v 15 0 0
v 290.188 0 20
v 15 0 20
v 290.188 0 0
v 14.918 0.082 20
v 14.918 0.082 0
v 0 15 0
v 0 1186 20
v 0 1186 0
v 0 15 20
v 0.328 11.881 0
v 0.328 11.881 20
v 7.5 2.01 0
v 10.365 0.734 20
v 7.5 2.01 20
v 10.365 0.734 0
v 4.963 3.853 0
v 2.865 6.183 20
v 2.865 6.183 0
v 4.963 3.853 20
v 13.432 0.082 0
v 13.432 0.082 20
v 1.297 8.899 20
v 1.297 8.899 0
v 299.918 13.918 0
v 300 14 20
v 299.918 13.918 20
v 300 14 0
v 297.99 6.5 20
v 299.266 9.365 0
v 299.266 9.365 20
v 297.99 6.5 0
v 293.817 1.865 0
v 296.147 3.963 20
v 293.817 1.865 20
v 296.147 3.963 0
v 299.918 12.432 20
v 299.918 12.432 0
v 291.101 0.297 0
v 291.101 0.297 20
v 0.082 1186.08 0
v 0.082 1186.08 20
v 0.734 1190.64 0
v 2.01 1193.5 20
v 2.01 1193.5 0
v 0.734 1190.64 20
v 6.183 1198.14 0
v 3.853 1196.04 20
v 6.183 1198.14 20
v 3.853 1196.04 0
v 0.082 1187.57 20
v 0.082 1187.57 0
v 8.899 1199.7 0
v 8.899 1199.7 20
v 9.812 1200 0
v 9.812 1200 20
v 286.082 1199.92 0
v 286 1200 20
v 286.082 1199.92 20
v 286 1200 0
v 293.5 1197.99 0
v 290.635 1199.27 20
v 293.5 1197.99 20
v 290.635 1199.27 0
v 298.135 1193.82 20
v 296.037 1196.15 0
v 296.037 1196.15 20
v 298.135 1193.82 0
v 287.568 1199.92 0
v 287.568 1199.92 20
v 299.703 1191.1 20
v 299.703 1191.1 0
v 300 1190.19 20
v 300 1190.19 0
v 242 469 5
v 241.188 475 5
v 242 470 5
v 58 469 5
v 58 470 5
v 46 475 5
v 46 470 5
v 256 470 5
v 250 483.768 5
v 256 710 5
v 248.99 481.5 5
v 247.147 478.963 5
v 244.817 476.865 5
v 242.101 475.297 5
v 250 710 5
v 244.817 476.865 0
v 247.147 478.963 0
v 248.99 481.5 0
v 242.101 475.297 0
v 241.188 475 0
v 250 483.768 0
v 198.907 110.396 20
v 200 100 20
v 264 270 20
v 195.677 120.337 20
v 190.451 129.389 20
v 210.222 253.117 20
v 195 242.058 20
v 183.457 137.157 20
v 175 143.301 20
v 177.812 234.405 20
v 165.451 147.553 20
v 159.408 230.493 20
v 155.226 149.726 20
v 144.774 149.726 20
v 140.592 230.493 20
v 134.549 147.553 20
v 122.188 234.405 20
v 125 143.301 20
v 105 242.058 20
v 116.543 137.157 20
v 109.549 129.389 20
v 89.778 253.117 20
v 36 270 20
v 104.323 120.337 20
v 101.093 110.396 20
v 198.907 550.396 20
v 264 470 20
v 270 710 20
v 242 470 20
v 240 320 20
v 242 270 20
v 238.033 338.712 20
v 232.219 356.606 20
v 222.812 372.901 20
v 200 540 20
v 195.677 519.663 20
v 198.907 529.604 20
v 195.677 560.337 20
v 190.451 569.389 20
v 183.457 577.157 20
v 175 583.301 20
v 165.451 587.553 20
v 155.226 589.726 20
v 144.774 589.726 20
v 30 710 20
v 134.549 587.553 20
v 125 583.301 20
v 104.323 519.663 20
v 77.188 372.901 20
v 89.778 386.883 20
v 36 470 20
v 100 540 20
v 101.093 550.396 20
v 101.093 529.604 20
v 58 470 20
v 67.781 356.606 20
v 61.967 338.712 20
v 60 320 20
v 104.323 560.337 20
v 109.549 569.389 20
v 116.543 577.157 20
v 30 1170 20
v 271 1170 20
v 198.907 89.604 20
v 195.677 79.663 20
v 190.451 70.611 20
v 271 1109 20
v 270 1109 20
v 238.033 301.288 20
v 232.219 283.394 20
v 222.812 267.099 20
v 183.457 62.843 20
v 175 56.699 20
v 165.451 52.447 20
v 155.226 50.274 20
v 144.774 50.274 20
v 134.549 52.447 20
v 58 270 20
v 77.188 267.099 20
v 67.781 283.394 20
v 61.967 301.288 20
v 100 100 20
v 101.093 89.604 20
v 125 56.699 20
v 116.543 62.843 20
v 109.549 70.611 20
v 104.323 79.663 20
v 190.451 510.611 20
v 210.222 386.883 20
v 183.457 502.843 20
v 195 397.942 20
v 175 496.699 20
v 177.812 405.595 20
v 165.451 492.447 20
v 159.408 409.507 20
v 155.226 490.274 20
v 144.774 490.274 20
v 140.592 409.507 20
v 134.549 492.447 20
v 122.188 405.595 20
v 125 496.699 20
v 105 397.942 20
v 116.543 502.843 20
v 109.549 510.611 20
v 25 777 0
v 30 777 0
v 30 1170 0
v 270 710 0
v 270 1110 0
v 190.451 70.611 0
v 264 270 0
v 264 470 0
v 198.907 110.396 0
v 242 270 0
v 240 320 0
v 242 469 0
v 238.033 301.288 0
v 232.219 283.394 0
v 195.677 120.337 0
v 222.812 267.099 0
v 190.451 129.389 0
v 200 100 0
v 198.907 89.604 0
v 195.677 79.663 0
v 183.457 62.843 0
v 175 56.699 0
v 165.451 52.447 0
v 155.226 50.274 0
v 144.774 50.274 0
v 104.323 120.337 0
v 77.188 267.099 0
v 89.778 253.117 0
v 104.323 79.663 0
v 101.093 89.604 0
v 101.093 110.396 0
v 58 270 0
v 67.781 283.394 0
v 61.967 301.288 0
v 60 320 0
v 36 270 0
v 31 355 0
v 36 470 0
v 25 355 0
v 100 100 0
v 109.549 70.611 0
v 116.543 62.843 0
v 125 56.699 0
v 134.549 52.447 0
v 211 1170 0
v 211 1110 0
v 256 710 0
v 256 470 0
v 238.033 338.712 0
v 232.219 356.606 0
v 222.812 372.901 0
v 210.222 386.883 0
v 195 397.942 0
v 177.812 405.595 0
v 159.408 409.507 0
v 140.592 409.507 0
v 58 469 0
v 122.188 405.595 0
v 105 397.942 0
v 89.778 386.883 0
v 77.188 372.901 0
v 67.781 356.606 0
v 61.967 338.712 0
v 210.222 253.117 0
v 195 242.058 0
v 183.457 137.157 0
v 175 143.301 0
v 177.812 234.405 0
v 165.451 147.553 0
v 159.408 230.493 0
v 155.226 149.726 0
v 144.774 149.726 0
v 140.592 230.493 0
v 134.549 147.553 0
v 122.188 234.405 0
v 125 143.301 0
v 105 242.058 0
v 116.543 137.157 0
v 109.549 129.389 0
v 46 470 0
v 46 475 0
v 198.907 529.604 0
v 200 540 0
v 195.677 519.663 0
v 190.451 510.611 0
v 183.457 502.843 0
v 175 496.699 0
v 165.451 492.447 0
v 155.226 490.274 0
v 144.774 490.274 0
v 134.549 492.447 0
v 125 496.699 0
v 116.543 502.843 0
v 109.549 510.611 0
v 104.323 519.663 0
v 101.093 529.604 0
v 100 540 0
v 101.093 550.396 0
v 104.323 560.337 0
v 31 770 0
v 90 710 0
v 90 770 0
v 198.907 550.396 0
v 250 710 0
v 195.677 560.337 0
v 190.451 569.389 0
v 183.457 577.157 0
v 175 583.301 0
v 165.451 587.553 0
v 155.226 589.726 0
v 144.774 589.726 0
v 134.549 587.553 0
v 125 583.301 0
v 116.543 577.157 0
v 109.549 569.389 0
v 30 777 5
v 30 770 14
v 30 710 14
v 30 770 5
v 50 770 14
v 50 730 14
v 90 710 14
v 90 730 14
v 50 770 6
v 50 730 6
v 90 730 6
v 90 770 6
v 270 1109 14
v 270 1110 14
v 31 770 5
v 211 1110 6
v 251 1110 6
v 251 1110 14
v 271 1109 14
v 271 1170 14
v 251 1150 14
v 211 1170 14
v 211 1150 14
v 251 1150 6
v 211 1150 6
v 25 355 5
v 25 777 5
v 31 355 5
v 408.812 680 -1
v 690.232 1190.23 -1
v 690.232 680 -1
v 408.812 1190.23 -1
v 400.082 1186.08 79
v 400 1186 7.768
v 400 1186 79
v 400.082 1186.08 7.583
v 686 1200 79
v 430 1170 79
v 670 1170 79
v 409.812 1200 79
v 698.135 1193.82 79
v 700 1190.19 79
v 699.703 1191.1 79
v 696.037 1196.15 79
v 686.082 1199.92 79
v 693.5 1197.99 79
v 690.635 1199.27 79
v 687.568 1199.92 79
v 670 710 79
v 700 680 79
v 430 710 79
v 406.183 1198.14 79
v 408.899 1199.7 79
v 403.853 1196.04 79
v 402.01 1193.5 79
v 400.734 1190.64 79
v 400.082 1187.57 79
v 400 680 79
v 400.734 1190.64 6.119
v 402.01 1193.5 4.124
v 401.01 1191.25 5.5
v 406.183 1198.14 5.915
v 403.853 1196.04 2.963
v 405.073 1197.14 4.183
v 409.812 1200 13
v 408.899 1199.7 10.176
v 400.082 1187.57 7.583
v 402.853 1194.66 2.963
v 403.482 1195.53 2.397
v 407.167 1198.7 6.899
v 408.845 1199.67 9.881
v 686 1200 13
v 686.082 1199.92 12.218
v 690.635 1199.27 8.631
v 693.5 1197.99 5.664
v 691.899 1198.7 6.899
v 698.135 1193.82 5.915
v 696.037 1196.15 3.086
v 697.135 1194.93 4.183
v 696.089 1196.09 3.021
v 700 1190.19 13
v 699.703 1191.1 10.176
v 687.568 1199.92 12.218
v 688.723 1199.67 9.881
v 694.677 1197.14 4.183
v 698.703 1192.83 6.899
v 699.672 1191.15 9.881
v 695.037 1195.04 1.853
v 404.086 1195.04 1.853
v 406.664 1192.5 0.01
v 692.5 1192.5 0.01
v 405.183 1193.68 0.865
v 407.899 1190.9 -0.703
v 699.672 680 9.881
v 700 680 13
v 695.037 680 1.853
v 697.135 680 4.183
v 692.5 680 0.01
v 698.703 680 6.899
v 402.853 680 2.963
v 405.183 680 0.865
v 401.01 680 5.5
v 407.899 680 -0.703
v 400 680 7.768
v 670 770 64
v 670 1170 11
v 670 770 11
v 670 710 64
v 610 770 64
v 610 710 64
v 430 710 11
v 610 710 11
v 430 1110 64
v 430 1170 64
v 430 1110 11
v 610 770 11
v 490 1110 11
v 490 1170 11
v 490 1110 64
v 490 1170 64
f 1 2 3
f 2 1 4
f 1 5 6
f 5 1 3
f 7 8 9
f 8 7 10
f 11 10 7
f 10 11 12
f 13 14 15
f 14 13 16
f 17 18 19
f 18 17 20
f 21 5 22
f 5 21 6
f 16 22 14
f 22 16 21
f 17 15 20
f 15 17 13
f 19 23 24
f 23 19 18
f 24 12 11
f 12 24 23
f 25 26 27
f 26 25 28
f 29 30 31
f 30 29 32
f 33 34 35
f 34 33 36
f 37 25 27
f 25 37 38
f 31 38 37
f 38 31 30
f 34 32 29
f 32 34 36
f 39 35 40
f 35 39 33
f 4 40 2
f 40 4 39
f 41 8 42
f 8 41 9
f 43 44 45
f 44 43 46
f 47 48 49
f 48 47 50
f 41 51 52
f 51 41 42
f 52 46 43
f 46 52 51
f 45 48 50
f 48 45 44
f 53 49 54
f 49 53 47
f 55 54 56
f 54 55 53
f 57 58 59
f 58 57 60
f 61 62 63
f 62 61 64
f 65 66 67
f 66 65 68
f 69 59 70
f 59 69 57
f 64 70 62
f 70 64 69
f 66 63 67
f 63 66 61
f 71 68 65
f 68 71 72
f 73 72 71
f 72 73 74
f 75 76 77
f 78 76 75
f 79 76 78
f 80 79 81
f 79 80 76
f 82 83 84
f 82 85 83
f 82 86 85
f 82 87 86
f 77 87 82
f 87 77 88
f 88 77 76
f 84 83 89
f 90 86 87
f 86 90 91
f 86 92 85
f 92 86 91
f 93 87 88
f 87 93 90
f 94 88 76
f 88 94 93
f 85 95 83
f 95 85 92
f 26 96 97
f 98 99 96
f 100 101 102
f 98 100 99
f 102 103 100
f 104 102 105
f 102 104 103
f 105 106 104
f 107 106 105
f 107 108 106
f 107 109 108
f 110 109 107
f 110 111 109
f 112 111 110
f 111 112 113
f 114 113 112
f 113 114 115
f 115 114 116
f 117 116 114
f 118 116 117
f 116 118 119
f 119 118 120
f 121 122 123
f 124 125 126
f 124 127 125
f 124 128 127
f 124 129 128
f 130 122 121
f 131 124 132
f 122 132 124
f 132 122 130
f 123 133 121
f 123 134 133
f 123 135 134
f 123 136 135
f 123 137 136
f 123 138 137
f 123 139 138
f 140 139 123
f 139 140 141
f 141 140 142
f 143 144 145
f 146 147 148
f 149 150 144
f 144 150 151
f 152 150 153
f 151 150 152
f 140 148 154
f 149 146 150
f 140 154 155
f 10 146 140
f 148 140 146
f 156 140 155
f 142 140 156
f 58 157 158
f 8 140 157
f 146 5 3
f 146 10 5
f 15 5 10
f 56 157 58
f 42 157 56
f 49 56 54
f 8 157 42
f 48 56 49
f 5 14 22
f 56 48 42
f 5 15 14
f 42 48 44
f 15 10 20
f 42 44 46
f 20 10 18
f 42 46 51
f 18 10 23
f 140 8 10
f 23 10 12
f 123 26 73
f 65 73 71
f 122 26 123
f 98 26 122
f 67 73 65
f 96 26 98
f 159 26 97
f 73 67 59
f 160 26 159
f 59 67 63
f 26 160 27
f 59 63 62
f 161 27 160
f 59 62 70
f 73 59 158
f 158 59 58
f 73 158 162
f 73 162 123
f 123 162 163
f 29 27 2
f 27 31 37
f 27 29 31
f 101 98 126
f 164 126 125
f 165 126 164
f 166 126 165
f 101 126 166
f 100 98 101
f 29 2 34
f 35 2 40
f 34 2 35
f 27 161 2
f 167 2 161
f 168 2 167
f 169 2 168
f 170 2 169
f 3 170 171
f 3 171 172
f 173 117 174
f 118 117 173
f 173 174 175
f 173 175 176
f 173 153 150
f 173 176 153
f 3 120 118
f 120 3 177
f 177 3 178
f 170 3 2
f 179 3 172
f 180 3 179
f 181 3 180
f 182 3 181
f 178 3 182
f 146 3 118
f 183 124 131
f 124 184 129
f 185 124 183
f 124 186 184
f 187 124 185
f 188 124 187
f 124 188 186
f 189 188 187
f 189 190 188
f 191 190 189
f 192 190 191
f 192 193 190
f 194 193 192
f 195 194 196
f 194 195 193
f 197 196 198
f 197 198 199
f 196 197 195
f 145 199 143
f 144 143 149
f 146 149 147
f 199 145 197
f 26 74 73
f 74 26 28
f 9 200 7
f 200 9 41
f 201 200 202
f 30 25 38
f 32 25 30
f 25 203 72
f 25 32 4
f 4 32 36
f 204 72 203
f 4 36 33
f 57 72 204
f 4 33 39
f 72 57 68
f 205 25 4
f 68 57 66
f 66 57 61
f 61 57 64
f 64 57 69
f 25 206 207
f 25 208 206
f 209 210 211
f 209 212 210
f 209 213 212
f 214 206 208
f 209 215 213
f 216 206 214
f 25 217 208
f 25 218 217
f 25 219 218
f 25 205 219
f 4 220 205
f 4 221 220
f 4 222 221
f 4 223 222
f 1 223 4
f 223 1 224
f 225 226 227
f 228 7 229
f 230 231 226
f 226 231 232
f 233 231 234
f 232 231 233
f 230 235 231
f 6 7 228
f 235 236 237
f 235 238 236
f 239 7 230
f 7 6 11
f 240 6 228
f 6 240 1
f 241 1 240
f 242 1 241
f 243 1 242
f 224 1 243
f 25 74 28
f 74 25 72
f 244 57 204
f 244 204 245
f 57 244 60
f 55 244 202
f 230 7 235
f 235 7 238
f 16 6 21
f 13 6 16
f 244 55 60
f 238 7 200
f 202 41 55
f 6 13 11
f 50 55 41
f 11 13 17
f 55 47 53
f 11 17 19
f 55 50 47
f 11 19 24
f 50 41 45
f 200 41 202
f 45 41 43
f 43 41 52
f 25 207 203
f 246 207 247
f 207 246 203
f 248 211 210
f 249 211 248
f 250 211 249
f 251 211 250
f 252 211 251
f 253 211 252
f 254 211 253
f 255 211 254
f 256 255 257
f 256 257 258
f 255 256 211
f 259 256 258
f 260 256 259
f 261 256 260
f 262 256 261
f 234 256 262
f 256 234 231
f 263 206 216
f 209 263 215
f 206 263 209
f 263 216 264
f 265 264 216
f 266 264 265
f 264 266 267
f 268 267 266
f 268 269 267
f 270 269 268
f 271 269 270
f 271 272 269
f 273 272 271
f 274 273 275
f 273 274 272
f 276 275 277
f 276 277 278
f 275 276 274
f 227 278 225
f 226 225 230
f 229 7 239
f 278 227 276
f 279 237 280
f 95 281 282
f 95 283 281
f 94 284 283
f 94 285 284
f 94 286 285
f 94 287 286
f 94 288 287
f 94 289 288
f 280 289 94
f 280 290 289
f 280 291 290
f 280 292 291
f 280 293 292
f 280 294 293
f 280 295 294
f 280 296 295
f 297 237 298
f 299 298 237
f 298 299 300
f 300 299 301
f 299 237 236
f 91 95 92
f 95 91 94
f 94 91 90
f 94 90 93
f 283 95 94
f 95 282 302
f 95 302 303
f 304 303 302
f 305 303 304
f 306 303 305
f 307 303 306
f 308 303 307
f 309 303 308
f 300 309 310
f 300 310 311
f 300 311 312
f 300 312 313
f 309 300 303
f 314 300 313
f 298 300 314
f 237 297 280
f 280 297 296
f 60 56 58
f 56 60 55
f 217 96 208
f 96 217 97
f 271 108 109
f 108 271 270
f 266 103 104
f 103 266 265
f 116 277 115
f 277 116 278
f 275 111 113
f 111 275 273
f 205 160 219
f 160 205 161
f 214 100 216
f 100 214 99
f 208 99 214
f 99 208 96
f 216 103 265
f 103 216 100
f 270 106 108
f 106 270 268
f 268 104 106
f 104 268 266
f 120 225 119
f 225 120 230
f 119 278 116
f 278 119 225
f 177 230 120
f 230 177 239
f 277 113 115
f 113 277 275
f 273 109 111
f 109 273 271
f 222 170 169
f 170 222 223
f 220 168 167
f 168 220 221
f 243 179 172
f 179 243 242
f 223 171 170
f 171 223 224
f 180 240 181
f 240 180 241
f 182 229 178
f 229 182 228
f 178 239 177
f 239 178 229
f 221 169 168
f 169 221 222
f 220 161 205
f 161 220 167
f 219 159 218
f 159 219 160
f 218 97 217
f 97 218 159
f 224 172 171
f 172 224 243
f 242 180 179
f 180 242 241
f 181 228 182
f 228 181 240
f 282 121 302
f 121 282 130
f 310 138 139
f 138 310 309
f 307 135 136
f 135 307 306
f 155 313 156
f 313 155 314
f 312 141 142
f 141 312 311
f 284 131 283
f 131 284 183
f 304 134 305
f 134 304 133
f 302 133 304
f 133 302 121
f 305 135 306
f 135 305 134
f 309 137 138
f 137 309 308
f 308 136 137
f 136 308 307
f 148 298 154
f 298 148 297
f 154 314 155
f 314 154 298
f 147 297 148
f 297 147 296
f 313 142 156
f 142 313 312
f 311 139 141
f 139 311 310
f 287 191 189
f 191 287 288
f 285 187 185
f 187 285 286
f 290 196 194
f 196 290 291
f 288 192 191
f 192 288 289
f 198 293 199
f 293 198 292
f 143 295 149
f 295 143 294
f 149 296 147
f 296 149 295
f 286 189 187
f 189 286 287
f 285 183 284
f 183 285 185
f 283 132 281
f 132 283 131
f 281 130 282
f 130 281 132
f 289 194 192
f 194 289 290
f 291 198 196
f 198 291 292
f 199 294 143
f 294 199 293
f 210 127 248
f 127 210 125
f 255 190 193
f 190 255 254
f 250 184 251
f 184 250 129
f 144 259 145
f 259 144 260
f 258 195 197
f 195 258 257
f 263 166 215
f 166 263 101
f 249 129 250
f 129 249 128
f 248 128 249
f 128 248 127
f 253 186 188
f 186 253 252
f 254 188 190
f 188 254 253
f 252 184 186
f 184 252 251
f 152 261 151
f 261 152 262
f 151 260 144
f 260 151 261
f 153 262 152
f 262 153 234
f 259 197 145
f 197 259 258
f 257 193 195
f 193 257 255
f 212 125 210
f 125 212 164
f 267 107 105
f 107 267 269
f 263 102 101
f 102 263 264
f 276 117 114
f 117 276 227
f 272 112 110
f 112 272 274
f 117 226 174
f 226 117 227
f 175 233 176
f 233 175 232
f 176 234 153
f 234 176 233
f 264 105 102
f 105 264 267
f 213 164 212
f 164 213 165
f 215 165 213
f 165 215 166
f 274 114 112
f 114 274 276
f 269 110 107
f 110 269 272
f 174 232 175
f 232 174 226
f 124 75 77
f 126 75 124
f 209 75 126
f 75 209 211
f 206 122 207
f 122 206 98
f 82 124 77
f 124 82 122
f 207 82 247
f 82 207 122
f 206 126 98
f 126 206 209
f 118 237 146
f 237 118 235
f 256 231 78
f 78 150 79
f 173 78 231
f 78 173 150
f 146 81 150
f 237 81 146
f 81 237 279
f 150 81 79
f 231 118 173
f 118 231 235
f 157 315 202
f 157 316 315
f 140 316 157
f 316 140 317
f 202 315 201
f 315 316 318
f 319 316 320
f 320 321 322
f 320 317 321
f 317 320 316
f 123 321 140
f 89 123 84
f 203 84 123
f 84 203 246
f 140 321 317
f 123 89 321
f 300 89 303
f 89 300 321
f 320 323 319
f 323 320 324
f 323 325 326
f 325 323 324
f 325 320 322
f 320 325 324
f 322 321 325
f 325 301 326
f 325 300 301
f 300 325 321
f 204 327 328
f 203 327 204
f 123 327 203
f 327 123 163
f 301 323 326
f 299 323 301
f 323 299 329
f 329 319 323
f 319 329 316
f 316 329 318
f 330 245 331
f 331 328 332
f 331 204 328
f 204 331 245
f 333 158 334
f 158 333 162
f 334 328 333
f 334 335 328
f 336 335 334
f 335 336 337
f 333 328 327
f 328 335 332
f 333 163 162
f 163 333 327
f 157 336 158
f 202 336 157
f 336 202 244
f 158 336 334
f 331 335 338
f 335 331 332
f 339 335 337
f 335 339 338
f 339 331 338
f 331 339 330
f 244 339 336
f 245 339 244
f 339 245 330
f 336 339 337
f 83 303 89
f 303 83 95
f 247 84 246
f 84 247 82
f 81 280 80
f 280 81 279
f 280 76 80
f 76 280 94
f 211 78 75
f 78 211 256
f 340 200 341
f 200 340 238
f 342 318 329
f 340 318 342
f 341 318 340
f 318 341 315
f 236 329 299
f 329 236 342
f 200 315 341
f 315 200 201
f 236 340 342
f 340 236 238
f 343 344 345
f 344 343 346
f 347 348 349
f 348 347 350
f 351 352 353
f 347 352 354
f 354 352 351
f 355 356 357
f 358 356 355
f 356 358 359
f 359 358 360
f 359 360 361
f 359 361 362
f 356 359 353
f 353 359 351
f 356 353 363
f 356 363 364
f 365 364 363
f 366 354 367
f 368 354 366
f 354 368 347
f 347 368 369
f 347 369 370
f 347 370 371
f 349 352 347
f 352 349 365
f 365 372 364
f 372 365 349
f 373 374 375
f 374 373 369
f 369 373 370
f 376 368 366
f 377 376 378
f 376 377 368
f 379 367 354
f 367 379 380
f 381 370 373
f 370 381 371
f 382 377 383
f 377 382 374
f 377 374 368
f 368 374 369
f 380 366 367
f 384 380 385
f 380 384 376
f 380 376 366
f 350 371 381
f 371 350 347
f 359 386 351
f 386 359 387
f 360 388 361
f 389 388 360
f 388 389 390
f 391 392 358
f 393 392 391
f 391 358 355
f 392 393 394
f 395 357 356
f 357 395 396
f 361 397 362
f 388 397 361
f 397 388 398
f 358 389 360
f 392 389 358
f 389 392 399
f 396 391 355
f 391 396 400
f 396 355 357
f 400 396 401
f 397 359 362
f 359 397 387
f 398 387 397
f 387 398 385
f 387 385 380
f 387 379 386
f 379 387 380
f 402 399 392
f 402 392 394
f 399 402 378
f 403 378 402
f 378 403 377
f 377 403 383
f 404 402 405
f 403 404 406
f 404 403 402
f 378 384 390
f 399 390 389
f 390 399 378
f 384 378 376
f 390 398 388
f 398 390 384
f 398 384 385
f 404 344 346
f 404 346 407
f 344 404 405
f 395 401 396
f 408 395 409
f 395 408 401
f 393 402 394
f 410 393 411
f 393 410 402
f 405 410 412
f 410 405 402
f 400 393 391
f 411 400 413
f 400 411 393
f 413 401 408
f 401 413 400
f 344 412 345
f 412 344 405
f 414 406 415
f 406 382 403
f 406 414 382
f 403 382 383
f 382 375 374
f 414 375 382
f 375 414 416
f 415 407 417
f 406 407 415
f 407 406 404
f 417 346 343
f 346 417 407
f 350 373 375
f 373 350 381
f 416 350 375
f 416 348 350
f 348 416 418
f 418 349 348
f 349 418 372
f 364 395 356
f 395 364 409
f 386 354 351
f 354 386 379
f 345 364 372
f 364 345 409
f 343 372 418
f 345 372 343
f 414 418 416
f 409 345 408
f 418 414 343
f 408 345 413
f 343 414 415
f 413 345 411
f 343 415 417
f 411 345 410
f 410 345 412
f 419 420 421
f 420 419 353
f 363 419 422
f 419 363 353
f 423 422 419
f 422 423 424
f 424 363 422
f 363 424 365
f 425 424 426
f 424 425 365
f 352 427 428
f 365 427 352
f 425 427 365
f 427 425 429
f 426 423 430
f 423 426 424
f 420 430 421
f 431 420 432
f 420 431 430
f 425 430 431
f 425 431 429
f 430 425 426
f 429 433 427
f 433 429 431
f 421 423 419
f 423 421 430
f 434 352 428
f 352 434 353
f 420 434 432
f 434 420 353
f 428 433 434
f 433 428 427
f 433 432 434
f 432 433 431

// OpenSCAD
// variables
pH=20;  // gesamt
kH=6;   // kabel

//
module roundedEdge(x=0, y=0, z=-1, a=0, l=30, h=pH+2) 
{
    translate([x, y, z]) rotate(a)
    difference() {
        translate([0, 0, 0])
        linear_extrude(h) 
        polygon([[0, 0], [l/2, 0], [0, l/2]]);
        translate([l/2, l/2, 0]) cylinder(r=l/2, h=h+2);
    }
}

//scale([0.1, 0.1, 0.1])
difference() {
cube([300, 1200, pH], center=false);

// befestigung
translate([150, 100, -1])
cylinder(r=50, h=pH+2, center=false);
translate([150, 540, -1])
cylinder(r=50, h=pH+2, center=false);
// vierkant
translate([150, 320, -1])
cylinder(r=90, h=pH+2, center=false);
// reed
translate([242, 270, -1])
cube([22, 200, pH+2], center=false);
translate([36, 270, -1])
cube([22, 200, pH+2], center=false);

// platine
translate([30, 710, 14])
cube([61, 61, 7], center=false);
translate([50, 730, 6])
cube([41, 41, 15], center=false);
translate([90, 710, -1])
cube([180, 61, pH+2], center=false);

translate([30, 770, -1])
cube([240, 340, pH+2], center=false);

translate([210, 1109, 14])
cube([61, 61, 7], center=false);
translate([210, 1109, 6])
cube([41, 41, 15], center=false);
translate([30, 1109, -1])
cube([181, 61, pH+2], center=false);

// kabel
translate([250, 469, -1])
cube([kH, 242, kH], center=false);
translate([46, 469, -1])
cube([210, kH, kH], center=false);
roundedEdge(x=251, y=474, h=6, a=90);

// antenne    
translate([25, 355, -1])
cube([kH, 422, kH], center=false);

roundedEdge();
roundedEdge(x=300, y=-1, a=90);
roundedEdge(x=301, y=1200, a=180);
roundedEdge(y=1201, a=270);
}

dH=80;  // gesamt

//scale([0.1, 0.1, 0.1])
difference() {
translate([400, 680, -1])
cube([300, 520, dH], center=false);

translate([609, 710, 64])
cube([61, 61, 17], center=false);
translate([430, 710, 11])
cube([180, 61, dH+2], center=false);

translate([430, 770, 11])
cube([240, 340, dH+2], center=false);

translate([430, 1109, 64])
cube([61, 61, 17], center=false);
translate([490, 1109, 11])
cube([180, 61, dH+2], center=false);

roundedEdge(x=400, y=1201, a=270, h=dH);
roundedEdge(x=701, y=1200, a=180, h=dH);
    
translate([700, 1200, -2]) rotate([90, 0, 270]) roundedEdge(x=0, y=0, h=300);
translate([399, 679, -2]) rotate([90, 270, 180]) roundedEdge(x=0, y=0, h=522);
translate([700, 679, -2]) rotate([90, 0, 180]) roundedEdge(x=0, y=0, h=522);
}
